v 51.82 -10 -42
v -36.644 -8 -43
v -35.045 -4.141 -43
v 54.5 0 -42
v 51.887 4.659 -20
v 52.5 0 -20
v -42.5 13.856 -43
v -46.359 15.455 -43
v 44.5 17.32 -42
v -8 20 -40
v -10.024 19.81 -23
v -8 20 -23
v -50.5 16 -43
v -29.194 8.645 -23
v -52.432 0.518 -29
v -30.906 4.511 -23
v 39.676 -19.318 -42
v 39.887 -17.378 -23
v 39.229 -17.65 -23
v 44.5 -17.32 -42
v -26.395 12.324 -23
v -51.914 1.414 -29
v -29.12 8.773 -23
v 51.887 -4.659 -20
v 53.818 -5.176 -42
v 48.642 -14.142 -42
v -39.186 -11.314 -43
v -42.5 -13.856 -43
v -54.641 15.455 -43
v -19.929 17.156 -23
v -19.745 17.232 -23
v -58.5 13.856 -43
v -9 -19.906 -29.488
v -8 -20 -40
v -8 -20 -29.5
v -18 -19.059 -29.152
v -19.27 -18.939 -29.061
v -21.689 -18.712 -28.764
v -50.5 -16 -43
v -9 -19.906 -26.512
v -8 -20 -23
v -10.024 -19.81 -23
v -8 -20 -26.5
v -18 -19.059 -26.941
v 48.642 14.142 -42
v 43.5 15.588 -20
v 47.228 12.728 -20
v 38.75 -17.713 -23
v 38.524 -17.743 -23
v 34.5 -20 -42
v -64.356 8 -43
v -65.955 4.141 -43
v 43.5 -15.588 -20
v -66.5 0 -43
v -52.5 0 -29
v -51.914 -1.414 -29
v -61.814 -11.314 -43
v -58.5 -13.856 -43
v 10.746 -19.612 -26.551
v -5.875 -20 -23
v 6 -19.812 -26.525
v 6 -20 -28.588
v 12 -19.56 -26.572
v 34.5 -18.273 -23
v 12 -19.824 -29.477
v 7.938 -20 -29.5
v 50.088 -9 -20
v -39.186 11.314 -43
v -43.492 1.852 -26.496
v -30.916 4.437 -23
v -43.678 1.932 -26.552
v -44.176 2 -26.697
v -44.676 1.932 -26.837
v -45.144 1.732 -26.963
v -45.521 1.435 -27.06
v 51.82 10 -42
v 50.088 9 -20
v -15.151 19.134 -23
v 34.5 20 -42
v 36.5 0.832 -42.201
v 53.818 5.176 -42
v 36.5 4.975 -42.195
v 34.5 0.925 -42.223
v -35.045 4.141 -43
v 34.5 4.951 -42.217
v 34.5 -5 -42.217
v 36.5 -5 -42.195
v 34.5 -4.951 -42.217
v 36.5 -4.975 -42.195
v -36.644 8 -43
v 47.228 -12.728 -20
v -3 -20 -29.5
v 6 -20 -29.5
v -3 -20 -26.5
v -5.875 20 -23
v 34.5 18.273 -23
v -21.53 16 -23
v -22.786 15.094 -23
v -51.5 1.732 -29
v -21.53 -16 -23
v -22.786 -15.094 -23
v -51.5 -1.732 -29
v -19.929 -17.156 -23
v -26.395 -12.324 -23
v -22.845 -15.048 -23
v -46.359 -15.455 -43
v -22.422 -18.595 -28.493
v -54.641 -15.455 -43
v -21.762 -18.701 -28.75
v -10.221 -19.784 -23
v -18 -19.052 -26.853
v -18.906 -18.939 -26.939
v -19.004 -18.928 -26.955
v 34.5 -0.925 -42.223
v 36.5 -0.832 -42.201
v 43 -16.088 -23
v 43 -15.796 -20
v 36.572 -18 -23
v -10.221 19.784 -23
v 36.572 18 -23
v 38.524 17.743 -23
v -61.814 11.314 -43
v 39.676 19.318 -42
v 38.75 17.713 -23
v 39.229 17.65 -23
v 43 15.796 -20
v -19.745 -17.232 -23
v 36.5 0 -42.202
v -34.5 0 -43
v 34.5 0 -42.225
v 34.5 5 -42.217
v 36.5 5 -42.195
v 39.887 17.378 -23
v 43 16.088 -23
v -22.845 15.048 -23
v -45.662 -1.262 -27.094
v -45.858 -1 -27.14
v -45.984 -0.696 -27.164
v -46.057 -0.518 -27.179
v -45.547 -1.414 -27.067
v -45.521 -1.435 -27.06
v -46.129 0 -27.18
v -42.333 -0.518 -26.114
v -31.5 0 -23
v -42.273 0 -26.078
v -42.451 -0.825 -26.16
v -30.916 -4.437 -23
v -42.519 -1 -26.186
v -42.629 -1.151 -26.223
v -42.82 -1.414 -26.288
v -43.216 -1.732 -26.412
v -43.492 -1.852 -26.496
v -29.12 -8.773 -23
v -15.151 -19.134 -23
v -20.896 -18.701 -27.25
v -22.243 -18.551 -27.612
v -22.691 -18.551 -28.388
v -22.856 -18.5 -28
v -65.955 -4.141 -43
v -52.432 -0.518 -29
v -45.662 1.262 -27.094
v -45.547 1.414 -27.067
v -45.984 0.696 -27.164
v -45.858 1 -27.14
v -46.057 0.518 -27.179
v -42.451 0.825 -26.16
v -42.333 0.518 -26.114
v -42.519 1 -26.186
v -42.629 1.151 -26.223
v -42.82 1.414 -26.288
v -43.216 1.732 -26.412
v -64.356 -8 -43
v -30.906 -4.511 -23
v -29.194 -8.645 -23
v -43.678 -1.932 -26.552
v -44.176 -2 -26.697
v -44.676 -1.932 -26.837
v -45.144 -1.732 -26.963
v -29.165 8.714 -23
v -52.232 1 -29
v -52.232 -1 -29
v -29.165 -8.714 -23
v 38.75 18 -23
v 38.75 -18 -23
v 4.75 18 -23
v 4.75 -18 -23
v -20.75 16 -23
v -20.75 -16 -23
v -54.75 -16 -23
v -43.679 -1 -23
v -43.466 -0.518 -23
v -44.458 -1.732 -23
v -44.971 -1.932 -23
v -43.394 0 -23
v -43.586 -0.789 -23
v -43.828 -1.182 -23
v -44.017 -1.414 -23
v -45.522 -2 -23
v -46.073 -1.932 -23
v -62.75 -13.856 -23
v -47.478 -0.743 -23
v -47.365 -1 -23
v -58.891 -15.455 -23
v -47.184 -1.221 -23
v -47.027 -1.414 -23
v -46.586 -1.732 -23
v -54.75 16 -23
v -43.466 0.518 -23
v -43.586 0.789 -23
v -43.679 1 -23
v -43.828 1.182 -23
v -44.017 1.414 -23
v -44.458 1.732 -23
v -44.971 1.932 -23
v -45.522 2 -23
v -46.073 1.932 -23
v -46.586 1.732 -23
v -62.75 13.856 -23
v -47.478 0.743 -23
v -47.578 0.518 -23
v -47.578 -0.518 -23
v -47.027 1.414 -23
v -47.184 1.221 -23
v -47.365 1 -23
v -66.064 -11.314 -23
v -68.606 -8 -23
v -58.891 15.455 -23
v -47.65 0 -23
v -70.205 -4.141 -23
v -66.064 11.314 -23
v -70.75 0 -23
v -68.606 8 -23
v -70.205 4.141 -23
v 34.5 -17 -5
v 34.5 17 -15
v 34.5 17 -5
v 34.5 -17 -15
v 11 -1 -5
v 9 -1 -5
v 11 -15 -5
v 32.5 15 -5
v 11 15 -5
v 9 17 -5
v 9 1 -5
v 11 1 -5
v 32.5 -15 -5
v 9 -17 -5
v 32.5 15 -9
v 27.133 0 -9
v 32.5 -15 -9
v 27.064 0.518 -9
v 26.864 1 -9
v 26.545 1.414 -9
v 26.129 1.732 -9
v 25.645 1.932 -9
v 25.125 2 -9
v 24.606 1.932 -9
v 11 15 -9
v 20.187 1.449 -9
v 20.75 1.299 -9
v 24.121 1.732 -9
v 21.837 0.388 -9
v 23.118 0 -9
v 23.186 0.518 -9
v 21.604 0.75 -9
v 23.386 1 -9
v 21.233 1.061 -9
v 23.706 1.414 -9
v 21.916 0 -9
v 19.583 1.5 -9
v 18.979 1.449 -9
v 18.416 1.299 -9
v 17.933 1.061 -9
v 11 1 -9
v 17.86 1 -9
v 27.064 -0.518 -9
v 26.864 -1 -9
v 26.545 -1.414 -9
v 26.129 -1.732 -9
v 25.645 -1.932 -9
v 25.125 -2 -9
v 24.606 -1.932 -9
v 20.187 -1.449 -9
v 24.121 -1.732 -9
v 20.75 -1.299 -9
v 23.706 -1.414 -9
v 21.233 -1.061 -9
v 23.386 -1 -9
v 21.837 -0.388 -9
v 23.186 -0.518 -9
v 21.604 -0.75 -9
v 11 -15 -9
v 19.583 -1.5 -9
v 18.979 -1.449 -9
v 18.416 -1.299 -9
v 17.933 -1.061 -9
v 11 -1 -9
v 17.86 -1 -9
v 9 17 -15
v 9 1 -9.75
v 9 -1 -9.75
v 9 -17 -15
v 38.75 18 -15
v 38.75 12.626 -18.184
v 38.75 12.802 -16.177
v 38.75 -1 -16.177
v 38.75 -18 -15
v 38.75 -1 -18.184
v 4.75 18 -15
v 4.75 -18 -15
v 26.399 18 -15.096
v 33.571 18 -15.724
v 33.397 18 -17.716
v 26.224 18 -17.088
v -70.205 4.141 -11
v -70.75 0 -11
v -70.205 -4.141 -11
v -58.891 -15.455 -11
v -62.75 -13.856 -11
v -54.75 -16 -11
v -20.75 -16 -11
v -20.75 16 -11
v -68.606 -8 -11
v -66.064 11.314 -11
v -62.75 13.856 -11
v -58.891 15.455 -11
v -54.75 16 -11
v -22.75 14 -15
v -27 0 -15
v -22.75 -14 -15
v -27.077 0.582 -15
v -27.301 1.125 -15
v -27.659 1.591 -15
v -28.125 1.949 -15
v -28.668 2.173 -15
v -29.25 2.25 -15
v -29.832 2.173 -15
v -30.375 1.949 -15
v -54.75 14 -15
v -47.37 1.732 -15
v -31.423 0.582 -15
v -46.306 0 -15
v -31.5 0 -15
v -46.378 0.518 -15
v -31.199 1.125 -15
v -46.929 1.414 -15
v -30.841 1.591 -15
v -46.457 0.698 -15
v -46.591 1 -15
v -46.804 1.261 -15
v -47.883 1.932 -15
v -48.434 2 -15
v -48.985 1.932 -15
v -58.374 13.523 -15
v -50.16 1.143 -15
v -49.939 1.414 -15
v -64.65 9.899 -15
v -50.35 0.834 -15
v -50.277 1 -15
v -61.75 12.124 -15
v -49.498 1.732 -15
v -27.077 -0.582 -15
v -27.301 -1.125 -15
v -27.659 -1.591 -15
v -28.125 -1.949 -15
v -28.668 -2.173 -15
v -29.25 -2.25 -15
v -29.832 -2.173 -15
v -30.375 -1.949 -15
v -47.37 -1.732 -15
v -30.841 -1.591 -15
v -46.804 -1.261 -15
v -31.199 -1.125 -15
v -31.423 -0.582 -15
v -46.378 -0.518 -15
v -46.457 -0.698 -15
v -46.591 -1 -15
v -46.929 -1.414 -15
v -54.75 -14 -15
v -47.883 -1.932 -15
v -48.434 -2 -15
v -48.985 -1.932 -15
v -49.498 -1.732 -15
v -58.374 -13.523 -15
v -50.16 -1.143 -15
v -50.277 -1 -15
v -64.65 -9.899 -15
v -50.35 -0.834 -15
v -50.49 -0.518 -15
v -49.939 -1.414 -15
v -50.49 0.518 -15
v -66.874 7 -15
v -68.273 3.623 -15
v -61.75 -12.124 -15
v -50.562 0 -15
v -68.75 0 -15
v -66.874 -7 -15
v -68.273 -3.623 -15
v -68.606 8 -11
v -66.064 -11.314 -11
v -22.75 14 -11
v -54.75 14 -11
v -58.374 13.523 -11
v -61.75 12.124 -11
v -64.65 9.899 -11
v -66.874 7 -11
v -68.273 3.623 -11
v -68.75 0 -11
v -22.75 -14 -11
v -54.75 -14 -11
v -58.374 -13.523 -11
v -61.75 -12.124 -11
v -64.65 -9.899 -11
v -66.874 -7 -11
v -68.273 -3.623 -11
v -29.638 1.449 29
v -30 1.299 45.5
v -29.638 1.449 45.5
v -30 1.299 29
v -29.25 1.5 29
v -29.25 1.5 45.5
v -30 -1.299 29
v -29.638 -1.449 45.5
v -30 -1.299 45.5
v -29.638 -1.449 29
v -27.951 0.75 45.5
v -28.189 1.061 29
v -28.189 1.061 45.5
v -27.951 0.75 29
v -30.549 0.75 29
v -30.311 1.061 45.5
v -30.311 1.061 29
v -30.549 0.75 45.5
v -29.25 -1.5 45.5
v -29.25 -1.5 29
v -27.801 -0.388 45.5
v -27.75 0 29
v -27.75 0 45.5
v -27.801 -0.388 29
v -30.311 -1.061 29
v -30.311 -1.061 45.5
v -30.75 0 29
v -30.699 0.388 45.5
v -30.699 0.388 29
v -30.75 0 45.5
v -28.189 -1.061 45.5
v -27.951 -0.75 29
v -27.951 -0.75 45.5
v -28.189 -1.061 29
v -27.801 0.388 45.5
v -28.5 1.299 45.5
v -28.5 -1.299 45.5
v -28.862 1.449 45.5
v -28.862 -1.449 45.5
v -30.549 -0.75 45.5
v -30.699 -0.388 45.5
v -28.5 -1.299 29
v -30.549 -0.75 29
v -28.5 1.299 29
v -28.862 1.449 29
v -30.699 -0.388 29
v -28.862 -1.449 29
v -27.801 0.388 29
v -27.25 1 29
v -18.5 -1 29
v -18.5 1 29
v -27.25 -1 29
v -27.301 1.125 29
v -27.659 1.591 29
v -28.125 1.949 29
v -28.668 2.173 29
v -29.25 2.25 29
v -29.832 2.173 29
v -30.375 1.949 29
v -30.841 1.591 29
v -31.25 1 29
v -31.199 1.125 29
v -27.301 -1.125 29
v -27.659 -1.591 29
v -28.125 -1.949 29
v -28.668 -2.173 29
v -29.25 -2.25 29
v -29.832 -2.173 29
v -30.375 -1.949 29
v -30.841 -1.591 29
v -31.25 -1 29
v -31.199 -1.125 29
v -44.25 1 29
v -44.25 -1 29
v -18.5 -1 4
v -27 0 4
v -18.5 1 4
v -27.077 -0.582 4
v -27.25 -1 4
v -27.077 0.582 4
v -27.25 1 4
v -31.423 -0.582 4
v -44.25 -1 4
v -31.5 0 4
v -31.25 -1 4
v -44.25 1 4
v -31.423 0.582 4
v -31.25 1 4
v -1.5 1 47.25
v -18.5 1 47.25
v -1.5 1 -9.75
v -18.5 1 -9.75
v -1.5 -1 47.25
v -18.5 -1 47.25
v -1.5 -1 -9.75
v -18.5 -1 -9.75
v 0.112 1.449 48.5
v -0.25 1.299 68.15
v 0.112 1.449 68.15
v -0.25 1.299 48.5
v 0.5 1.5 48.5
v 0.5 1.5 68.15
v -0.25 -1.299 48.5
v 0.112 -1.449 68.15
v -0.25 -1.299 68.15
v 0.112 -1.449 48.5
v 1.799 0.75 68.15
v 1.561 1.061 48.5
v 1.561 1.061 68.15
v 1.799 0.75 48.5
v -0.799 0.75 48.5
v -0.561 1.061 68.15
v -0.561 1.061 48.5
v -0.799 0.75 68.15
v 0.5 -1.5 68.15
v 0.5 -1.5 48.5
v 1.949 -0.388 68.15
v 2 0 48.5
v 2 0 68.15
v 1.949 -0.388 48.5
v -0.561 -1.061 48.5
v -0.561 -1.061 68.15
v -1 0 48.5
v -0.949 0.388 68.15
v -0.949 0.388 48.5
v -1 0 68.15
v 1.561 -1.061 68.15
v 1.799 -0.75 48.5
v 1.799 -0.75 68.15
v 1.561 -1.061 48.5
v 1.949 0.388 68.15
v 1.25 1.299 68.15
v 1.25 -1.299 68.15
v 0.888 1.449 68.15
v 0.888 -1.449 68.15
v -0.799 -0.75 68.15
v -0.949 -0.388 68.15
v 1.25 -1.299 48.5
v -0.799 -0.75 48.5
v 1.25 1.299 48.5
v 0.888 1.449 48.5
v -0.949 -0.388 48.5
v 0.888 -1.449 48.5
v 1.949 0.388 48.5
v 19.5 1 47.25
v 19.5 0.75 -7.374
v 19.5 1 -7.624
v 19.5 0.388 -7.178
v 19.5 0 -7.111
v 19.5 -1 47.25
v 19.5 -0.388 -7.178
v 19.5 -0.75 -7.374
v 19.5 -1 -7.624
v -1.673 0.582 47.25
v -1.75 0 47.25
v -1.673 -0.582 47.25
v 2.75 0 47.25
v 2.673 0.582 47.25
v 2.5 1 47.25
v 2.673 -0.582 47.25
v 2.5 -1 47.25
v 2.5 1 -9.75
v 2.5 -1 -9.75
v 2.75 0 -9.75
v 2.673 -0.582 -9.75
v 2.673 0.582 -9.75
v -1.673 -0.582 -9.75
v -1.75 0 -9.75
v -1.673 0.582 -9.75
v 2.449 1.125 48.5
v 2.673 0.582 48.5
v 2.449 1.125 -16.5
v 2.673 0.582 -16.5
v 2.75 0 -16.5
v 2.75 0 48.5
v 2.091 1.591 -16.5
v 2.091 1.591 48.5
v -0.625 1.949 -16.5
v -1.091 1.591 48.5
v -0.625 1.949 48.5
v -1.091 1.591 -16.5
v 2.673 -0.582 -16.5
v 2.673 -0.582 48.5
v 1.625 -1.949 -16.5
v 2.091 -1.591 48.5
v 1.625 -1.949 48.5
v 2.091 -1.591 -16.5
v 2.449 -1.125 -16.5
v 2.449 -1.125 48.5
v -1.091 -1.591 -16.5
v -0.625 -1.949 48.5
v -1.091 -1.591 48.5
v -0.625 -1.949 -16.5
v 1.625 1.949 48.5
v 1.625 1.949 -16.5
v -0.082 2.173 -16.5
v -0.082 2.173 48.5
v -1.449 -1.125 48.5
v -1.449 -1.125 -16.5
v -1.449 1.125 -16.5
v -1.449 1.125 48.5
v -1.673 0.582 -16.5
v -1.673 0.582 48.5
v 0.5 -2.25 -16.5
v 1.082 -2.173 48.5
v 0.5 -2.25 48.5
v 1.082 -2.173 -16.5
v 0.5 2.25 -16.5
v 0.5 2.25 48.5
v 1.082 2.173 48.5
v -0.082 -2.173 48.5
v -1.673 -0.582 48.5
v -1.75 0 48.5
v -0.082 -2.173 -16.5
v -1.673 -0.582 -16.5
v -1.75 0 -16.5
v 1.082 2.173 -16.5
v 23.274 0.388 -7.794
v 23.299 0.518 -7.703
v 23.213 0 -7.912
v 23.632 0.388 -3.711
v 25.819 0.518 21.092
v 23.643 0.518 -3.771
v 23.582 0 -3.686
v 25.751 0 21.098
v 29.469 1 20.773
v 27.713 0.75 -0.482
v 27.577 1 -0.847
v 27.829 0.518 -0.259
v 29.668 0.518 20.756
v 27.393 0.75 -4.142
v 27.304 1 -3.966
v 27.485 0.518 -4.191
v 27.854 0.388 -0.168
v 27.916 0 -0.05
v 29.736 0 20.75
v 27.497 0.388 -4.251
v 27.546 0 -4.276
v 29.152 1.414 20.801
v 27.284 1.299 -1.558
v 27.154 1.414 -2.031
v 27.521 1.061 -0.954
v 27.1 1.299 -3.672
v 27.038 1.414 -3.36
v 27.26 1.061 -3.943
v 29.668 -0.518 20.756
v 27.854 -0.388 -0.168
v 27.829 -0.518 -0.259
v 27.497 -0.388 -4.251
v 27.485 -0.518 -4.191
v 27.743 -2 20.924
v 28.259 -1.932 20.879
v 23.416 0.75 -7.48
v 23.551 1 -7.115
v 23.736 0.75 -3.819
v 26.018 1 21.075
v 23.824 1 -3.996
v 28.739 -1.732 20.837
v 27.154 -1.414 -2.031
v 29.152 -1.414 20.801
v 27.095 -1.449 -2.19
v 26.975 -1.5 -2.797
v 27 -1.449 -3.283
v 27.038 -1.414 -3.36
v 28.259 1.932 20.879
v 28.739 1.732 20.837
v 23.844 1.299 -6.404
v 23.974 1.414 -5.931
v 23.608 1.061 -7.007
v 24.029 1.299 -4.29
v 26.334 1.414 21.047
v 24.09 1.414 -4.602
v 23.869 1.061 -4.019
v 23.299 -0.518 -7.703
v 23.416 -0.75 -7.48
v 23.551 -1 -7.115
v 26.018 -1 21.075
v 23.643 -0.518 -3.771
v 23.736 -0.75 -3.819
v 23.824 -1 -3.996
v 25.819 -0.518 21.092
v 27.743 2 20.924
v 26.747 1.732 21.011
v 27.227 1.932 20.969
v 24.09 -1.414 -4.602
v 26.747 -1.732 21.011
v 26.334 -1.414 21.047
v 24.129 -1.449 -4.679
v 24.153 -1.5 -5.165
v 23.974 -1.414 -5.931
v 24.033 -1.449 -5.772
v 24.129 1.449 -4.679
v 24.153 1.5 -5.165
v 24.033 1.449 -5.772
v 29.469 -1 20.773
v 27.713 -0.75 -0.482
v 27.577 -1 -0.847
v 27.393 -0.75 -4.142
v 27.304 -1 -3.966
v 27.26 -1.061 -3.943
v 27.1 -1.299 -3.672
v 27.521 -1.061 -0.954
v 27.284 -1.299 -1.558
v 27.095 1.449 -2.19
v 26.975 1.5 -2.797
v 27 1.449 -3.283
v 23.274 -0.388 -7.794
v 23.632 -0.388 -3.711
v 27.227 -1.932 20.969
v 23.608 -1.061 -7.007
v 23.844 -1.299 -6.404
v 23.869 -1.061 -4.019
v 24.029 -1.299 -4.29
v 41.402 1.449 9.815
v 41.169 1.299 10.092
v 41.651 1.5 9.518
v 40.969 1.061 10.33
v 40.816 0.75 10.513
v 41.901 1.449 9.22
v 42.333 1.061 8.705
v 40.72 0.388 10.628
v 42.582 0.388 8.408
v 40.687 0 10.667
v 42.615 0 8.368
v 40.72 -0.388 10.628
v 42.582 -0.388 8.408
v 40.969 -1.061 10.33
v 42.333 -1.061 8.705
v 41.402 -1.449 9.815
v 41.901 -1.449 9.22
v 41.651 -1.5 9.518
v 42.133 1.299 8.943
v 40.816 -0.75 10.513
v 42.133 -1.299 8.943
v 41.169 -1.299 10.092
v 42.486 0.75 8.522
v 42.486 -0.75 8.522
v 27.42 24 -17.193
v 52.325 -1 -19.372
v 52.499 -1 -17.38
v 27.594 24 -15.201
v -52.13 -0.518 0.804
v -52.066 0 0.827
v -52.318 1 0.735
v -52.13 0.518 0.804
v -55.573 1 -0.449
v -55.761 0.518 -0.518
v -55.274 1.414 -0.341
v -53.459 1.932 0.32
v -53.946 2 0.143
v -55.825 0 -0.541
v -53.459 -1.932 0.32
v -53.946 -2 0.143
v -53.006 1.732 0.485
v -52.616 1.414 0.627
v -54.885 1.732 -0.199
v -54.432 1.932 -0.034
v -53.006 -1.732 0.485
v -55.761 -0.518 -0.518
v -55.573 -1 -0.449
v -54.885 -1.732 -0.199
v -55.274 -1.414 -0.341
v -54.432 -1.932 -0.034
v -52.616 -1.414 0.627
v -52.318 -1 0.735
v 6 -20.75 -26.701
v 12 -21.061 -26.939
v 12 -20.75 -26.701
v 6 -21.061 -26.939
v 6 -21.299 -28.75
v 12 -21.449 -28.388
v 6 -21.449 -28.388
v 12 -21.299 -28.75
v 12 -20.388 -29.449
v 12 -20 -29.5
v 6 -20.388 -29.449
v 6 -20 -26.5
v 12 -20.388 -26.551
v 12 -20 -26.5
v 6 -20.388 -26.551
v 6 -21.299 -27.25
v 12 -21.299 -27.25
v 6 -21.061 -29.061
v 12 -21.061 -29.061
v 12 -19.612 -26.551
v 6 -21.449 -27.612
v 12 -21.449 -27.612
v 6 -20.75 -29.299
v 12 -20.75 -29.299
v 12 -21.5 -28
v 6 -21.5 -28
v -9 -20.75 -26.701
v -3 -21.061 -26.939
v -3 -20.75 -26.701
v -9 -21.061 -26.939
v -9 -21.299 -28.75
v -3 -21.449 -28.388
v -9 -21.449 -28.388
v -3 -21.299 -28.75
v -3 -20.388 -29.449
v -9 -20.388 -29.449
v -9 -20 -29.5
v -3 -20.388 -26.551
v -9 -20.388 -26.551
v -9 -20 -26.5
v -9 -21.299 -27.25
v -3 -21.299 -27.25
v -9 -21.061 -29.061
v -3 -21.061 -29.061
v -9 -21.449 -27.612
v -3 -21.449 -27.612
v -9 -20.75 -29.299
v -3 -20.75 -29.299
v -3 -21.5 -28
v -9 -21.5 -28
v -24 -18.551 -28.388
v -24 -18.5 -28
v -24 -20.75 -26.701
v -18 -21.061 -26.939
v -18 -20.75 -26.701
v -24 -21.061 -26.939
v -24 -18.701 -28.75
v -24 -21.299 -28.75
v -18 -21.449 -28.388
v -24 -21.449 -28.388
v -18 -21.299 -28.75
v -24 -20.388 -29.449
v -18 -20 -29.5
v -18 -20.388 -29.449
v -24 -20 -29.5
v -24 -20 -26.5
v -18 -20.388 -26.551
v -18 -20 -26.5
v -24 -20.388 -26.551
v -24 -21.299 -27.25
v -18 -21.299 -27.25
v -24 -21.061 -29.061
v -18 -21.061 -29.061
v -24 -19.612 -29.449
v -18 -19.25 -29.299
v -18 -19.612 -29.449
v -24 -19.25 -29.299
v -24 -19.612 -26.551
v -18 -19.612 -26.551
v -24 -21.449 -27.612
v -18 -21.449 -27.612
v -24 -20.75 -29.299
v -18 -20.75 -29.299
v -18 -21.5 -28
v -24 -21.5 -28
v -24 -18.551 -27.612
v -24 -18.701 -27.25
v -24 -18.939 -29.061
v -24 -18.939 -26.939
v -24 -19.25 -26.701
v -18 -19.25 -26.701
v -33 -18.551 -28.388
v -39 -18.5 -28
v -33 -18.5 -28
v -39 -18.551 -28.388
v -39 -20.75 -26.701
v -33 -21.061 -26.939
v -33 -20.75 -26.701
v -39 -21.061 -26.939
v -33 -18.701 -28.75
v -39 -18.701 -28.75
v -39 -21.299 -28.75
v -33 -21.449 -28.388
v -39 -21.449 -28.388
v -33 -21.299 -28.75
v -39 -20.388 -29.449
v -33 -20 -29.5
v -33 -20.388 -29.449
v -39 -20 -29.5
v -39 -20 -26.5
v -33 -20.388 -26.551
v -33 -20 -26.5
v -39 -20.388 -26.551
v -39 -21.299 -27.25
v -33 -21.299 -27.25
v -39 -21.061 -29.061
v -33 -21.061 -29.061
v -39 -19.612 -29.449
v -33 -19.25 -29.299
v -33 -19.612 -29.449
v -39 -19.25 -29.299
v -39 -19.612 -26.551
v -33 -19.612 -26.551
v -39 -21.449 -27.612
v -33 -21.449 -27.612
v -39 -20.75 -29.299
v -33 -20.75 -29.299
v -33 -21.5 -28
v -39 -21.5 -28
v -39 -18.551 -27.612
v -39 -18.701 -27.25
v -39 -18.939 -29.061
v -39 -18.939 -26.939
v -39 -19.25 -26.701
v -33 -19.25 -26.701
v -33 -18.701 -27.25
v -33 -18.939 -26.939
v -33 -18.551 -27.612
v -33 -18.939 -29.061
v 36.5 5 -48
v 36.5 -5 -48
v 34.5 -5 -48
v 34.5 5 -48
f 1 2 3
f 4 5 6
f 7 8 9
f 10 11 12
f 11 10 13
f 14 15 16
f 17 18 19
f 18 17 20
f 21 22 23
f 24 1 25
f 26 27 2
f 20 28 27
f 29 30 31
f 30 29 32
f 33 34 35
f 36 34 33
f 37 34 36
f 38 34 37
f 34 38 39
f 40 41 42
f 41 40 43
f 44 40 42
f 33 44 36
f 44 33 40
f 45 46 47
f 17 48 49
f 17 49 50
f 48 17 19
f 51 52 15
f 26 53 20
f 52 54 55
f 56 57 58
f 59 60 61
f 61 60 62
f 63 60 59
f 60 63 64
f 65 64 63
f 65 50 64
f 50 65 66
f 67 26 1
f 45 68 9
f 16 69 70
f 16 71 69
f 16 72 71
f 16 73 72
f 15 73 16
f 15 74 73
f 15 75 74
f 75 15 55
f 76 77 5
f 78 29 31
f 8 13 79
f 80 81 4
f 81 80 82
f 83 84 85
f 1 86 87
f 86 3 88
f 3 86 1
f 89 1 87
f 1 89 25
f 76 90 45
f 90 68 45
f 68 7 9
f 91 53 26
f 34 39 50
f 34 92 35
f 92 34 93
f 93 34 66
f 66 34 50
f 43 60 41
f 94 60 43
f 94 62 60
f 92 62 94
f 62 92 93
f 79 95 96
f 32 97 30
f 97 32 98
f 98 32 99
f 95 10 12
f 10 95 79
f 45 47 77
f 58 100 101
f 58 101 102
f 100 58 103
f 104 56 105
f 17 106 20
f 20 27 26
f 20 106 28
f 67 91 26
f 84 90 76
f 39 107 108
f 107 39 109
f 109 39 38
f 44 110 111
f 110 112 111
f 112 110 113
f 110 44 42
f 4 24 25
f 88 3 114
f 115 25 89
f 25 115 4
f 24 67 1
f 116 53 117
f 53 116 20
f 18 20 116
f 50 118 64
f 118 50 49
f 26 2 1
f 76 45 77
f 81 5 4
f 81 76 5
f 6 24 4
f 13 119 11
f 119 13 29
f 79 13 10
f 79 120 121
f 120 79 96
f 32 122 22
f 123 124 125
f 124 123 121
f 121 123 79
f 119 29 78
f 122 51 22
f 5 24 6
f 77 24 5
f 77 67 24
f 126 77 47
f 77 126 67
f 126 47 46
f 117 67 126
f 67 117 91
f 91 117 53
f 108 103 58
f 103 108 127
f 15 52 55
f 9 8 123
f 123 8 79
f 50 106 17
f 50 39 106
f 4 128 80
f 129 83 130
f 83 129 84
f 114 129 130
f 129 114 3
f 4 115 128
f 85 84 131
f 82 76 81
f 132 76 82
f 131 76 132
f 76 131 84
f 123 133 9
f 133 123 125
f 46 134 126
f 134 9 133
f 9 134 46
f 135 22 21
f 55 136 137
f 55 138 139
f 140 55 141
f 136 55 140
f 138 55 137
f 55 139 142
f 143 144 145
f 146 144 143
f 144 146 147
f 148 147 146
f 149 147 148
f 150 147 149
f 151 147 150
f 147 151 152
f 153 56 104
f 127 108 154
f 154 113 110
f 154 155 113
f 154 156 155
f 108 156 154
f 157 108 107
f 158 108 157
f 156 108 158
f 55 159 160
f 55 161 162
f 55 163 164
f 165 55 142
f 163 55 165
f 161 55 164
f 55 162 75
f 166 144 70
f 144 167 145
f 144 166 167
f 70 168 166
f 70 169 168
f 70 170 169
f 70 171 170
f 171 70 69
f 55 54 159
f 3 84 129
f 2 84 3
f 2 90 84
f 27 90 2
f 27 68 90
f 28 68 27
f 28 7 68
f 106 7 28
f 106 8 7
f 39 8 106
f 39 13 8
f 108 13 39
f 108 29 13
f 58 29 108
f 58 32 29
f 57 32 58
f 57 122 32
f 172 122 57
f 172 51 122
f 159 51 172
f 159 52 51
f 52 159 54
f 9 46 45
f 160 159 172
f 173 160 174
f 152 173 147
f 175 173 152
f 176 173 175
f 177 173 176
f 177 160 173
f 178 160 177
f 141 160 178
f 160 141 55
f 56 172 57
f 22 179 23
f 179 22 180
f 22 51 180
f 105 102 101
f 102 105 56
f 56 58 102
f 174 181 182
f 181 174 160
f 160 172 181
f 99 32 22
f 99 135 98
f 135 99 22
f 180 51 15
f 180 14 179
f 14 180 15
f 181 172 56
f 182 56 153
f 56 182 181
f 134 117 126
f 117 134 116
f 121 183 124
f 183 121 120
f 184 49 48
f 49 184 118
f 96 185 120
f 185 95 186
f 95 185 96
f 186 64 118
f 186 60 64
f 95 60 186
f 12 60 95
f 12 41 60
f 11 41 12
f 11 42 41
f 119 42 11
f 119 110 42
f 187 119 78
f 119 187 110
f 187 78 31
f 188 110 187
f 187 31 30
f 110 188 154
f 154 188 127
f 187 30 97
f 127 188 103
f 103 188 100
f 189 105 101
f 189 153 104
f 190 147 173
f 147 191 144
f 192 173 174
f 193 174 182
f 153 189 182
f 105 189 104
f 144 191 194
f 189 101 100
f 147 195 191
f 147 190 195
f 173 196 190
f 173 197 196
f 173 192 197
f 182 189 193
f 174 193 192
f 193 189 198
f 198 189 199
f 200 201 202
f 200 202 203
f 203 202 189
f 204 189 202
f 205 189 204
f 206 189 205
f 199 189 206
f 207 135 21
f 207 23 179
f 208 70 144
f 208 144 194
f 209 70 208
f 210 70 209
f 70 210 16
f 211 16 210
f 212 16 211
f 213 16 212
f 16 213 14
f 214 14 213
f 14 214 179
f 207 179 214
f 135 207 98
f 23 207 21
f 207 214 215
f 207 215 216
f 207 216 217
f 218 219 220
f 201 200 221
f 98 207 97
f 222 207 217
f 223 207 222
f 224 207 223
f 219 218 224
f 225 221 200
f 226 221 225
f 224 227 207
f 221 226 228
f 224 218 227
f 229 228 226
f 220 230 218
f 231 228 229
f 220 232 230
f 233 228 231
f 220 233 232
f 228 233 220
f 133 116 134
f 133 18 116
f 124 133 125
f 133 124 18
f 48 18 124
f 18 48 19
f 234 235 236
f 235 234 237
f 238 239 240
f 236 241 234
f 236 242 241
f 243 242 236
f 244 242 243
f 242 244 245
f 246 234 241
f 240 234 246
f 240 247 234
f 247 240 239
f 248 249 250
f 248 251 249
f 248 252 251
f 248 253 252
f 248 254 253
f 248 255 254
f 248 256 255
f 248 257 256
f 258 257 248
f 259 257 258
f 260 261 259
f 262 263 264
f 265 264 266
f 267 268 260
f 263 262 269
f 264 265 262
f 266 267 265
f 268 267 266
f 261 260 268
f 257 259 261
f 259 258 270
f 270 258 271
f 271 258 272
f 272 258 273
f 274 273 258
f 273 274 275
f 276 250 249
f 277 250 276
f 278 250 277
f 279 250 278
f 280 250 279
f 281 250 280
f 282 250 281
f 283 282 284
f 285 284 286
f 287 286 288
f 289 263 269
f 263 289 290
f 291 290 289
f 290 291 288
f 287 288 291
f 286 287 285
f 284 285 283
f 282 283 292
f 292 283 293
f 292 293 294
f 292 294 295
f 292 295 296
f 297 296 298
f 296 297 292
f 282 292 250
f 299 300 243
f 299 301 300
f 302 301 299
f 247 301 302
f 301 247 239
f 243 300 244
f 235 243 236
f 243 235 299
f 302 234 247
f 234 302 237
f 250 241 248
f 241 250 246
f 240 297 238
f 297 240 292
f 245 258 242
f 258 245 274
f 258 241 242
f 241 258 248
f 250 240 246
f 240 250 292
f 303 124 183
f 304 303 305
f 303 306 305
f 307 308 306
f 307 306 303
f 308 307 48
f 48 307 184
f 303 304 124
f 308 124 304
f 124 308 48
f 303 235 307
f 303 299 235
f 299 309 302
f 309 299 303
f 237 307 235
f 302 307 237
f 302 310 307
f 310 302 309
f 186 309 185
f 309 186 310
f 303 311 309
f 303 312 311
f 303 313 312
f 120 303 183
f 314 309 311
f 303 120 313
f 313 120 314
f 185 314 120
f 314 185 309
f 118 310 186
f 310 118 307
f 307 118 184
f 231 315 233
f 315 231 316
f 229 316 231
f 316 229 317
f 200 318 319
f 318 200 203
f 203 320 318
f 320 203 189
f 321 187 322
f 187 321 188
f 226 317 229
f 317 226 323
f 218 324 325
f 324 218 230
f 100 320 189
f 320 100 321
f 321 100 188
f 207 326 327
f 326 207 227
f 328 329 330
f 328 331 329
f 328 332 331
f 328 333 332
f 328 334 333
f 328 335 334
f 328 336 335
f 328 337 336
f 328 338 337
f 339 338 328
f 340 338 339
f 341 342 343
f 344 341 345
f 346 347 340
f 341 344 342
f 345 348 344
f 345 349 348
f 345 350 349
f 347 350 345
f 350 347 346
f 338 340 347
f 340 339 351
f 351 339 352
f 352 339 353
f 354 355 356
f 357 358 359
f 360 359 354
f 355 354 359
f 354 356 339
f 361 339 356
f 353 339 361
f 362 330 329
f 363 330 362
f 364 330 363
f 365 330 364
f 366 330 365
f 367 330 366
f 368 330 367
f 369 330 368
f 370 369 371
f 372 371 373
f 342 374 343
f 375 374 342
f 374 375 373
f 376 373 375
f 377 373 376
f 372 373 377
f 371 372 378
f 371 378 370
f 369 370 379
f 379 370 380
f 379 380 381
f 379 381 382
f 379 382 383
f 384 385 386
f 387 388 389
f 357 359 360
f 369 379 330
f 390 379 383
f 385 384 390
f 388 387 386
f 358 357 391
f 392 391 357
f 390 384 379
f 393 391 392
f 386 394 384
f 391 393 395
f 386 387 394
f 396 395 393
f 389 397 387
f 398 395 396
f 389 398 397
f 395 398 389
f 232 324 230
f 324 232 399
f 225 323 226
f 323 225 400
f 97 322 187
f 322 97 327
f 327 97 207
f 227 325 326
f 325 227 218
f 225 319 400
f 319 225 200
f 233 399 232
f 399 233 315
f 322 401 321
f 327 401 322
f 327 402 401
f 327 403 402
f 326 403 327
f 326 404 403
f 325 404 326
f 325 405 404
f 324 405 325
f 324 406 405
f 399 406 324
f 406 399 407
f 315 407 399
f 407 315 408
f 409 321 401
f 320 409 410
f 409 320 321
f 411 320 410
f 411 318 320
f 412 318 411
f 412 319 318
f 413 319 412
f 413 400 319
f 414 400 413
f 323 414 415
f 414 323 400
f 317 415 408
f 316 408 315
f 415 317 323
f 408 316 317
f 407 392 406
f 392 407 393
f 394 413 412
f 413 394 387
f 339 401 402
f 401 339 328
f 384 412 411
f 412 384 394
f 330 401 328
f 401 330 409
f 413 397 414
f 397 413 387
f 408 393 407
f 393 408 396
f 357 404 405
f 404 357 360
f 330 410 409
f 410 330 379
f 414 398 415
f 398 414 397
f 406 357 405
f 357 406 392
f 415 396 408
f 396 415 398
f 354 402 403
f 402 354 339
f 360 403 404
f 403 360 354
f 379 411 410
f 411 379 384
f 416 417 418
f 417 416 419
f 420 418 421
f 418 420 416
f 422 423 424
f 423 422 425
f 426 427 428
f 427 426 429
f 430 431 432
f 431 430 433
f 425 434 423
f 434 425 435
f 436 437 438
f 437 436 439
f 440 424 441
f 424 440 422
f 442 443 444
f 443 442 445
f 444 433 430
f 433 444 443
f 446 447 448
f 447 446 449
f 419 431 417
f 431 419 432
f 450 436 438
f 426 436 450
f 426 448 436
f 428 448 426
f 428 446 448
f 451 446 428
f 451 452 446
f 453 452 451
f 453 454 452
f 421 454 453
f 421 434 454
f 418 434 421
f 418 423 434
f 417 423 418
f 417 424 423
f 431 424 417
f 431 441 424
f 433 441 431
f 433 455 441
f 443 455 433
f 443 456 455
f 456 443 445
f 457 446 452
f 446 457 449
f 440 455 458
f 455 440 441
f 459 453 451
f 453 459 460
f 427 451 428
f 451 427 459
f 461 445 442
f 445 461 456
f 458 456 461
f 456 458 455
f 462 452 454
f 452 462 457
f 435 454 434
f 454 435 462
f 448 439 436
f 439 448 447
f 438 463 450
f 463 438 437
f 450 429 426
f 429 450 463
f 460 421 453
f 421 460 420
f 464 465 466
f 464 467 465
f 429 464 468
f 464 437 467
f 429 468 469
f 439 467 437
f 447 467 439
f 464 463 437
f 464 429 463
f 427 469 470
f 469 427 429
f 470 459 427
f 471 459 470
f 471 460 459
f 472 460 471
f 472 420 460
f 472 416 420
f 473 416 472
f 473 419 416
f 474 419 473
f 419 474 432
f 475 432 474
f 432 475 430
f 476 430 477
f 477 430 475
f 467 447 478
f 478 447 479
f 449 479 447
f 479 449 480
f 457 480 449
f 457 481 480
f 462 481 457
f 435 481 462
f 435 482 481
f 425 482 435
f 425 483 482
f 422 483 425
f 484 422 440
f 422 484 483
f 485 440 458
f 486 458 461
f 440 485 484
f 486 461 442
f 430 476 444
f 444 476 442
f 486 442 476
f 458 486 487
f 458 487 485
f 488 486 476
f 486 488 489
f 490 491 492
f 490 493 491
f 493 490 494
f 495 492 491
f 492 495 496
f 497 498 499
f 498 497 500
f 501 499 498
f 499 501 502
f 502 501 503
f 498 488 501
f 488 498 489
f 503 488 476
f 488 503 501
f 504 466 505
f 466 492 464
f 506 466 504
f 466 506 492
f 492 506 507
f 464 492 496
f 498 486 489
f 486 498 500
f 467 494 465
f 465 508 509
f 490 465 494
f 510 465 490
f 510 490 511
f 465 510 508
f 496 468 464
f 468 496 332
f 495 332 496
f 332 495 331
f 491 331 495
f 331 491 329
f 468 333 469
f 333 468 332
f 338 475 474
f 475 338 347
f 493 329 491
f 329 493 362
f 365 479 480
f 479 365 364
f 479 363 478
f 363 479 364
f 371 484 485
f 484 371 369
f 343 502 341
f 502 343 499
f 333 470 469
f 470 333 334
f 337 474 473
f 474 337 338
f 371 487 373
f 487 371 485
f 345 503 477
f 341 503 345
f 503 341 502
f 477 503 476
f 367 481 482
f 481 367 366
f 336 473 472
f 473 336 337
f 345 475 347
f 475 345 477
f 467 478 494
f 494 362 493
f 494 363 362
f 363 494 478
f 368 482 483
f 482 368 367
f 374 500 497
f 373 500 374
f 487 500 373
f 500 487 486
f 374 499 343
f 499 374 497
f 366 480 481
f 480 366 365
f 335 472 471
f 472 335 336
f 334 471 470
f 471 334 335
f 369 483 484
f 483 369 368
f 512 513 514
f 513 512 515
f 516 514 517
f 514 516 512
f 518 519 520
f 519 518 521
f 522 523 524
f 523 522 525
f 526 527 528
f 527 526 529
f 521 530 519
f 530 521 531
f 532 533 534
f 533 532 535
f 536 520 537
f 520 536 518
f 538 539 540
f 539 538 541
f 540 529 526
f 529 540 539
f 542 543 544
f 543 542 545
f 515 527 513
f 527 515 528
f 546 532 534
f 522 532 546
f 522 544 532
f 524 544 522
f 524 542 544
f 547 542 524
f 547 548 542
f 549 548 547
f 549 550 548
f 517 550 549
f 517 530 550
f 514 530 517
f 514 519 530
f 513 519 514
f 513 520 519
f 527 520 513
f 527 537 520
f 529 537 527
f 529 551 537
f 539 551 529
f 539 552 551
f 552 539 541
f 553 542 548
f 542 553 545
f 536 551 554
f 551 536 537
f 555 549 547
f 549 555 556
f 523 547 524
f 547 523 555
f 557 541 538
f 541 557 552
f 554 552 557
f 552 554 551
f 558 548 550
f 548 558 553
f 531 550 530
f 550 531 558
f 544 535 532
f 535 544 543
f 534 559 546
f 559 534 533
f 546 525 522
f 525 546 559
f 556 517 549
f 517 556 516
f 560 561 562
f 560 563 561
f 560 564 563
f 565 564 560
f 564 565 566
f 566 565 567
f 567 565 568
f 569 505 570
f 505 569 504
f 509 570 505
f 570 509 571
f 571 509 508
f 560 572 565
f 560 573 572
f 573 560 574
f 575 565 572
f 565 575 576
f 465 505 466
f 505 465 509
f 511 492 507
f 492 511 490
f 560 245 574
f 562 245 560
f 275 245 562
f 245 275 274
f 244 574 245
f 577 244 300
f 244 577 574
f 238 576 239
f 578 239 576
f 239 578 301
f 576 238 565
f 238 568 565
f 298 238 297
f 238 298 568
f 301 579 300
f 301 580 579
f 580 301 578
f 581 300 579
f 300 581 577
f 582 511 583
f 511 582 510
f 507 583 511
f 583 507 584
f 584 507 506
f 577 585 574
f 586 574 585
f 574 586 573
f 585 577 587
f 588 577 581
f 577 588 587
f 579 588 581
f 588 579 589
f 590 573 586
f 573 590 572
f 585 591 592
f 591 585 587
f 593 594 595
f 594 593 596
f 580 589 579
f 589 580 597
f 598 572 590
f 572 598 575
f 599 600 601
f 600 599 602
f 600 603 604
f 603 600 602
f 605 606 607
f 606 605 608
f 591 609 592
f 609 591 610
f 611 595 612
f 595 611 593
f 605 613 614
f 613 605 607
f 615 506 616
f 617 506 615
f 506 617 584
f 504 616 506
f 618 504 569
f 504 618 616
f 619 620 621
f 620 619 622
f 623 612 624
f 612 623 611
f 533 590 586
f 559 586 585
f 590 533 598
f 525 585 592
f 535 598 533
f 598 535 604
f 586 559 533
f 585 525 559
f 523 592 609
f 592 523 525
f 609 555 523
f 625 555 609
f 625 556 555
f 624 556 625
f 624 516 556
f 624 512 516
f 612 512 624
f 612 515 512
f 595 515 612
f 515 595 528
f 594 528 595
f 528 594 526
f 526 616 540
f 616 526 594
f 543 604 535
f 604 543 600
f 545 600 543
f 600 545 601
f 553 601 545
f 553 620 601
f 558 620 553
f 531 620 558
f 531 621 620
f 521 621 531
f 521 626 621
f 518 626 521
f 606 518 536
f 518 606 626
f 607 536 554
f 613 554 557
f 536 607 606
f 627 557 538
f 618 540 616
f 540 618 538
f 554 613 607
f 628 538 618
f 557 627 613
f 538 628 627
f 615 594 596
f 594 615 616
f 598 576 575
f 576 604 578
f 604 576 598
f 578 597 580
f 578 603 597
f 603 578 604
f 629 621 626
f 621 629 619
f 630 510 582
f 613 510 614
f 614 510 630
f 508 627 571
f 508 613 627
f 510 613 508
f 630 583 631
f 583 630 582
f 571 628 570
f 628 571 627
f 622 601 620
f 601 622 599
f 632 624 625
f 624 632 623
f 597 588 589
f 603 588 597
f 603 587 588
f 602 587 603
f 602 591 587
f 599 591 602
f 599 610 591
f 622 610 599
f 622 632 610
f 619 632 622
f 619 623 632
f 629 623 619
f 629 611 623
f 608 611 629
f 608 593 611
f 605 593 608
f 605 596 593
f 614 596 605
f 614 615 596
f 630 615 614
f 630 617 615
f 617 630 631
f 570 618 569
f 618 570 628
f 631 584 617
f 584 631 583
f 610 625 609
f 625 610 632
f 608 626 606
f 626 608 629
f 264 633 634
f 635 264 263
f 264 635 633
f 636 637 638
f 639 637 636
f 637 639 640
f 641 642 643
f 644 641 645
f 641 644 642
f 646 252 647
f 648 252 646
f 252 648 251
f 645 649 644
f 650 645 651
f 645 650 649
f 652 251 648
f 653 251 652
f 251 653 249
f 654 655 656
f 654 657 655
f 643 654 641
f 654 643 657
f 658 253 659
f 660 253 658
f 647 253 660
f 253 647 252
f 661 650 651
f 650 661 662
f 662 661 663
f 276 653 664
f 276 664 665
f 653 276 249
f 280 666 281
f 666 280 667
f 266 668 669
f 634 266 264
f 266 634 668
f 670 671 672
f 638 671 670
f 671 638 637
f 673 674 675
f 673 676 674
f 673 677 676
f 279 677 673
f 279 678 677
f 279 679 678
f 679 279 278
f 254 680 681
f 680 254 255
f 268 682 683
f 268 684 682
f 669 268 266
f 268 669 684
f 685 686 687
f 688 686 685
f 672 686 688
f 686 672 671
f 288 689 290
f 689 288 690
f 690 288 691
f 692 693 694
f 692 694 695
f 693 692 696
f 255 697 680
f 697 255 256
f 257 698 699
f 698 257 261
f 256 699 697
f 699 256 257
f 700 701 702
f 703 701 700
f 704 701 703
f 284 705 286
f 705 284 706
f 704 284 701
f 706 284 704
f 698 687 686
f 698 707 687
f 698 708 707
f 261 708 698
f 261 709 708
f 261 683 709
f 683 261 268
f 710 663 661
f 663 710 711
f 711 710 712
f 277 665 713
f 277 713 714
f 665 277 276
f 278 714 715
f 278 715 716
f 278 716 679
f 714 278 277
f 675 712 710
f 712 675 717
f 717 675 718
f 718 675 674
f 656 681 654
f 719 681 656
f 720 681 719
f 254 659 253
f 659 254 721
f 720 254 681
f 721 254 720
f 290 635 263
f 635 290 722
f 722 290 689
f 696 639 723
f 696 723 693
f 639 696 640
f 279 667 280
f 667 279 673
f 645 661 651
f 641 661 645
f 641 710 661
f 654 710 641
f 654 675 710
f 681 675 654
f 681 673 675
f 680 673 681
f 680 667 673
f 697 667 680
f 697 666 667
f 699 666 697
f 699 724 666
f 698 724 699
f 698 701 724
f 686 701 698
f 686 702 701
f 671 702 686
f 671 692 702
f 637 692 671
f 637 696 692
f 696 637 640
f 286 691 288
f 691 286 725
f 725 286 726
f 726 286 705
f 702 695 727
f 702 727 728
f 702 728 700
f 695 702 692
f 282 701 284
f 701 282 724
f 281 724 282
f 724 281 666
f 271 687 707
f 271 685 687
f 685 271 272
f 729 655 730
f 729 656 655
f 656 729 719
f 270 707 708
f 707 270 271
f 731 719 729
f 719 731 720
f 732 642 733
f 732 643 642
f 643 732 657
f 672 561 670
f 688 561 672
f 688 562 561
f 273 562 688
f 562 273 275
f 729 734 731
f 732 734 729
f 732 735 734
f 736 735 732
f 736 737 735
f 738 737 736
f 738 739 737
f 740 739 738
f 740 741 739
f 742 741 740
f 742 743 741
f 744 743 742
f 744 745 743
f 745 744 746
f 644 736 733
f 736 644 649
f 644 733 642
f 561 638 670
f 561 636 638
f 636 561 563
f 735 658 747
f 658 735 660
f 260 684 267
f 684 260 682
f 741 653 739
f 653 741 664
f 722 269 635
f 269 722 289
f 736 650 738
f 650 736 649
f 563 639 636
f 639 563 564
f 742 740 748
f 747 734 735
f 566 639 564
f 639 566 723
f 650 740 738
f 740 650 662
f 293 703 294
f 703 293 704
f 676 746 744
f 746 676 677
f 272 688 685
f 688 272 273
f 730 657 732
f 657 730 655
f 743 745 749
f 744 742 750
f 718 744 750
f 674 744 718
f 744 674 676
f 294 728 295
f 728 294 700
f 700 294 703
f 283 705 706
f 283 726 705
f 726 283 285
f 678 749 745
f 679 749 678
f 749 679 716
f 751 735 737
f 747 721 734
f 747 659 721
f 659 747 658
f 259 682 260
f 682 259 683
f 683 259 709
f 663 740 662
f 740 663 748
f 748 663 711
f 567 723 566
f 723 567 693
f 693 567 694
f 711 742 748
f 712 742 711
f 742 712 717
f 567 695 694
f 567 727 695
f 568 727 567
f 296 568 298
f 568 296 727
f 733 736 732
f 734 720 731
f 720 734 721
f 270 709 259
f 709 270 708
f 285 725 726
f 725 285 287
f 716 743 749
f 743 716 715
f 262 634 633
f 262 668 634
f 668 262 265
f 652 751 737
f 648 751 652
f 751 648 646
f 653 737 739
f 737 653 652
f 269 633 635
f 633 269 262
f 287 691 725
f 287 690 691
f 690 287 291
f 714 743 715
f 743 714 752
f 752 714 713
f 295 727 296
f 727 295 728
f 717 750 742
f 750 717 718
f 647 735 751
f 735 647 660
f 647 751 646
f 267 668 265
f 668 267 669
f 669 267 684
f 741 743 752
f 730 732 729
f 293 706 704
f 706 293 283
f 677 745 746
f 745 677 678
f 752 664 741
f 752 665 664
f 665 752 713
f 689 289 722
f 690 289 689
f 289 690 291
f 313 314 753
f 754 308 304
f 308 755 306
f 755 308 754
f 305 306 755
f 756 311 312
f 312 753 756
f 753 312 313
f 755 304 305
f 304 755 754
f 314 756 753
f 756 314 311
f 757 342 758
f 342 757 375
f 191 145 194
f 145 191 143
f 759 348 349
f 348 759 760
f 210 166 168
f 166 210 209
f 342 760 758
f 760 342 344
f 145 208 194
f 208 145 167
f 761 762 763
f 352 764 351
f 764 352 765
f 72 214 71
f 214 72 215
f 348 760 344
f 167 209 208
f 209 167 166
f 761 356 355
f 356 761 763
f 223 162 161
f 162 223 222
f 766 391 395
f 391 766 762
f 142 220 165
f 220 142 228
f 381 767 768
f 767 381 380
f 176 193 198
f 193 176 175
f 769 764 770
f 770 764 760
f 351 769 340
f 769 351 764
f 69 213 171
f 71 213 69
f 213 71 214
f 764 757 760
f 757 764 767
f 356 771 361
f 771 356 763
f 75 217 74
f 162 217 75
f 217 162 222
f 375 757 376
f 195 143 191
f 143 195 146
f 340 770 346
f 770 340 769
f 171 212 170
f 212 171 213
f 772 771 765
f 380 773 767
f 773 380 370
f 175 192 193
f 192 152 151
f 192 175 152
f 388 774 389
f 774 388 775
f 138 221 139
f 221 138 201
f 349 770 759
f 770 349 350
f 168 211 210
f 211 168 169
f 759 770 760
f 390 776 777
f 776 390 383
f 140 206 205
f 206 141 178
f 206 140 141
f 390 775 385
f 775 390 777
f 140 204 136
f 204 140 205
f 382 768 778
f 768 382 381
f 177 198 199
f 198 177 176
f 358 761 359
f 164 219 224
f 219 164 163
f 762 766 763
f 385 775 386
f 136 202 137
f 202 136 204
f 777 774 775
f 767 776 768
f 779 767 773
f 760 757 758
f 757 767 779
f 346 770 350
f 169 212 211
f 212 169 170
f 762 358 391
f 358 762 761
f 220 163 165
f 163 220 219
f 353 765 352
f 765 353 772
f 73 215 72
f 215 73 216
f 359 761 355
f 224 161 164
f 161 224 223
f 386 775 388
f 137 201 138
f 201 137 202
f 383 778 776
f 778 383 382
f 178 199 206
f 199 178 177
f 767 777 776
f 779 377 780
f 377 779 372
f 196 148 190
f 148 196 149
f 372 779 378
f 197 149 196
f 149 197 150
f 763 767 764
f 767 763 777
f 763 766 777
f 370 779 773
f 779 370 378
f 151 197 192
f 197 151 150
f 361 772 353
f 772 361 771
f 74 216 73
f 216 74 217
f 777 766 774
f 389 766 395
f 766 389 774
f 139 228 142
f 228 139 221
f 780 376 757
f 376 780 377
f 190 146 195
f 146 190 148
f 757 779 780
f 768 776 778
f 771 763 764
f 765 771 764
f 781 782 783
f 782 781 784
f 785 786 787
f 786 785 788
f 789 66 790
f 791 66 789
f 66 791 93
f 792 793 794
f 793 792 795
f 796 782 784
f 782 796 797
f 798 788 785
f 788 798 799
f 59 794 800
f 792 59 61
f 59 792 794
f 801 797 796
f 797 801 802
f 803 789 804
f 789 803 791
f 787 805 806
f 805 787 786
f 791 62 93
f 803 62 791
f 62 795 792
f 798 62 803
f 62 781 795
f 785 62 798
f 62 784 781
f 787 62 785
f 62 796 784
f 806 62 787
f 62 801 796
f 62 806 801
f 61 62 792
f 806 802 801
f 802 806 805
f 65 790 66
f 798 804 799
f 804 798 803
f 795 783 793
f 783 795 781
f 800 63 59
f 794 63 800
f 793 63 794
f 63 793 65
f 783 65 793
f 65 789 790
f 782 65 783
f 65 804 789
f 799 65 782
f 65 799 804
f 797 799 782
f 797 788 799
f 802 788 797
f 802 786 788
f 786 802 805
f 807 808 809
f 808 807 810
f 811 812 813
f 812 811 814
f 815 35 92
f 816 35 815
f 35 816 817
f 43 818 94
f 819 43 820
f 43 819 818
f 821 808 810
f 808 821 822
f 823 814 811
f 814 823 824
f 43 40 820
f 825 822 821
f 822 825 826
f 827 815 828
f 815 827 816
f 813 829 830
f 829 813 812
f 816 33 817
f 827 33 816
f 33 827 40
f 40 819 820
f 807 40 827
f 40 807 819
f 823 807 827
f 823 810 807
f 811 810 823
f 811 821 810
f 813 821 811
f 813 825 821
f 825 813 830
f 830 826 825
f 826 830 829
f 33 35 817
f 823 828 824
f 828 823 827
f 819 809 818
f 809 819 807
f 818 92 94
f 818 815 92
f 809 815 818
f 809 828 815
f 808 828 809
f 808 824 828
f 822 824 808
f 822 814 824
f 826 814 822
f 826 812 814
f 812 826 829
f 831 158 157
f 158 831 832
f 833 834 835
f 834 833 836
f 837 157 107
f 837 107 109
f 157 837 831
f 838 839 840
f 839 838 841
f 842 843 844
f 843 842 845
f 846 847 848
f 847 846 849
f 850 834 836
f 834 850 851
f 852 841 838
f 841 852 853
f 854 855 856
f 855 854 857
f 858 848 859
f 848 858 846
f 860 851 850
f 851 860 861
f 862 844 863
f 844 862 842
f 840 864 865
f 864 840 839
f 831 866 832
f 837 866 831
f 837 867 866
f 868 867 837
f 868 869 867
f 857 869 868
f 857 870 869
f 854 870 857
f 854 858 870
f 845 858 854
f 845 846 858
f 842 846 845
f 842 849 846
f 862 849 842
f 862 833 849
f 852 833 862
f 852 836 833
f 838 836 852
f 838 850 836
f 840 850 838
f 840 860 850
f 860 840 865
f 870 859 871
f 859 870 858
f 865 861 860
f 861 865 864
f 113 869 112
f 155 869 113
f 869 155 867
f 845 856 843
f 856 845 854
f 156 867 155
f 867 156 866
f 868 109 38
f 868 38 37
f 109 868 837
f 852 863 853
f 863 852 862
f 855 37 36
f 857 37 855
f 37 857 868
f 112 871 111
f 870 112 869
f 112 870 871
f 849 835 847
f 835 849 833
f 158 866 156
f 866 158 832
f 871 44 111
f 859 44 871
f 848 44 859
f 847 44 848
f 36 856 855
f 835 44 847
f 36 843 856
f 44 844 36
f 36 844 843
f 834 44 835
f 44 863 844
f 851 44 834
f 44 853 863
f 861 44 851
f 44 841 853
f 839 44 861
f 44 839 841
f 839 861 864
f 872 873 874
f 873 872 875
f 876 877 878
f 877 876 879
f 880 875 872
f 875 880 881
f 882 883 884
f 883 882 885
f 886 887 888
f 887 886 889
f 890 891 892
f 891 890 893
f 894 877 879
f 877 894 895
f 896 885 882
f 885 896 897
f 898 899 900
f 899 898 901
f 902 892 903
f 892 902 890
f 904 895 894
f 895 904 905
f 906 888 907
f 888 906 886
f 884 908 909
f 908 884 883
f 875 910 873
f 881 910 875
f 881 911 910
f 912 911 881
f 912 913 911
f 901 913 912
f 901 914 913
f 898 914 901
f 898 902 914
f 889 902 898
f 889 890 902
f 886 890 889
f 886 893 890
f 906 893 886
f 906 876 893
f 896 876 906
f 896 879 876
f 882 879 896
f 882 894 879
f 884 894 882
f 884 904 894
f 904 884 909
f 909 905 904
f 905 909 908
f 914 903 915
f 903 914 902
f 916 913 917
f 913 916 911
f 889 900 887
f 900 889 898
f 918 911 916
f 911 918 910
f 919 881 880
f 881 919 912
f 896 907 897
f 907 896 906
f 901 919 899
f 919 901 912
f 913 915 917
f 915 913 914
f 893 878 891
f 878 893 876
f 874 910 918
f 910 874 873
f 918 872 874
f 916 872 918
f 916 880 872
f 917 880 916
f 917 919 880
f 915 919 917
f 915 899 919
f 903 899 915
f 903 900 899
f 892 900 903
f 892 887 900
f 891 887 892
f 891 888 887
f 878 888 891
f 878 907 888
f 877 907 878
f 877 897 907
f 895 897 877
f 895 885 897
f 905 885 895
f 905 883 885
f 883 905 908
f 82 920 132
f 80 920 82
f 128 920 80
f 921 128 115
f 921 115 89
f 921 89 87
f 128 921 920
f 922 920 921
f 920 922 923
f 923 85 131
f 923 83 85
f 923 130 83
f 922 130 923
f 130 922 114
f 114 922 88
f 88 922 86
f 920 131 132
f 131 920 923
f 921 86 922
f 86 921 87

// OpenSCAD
// OpenSCAD Galeón Español para Impresión 3D FDM
// Dimensiones Objetivo: 100x50x90mm
// Centrado en (0,0,0)
// Mínimo grosor de pared: 2mm

$fn = 24;

// --- Parámetros Globales ---
ship_length = 85;   // Longitud del casco principal
ship_width = 40;    // Ancho del casco principal
deck_level = 8;     // Nivel de la cubierta principal en Z
min_wall = 2;

// --- Módulo Principal ---
// Centra el galeón completo en el origen
// Centro calculado X: -8, Z: 31
translate([-8, 0, -31]) {
    galeon();
}

// --- Ensamblaje del Galeón ---
module galeon() {
    union() {
        casco();
        superestructura();
        mastiles_y_velas();
        detalles();
    }
}

// --- Casco ---
module casco() {
    difference() {
        // Forma base del casco usando la función hull() para suavizar
        hull() {
            // Popa (Stern) - Ancha y alta
            translate([ship_length * 0.5, 0, 0])
                cylinder(h = 22, d1 = ship_width, d2 = ship_width * 0.9, center = true);

            // Centro
            translate([0, 0, 0])
                cylinder(h = 18, d = ship_width, center = true);
            
            // Proa (Bow) - Estrecha y elevada
            translate([-ship_length * 0.5, 0, -5])
                cylinder(h = 14, d1 = ship_width * 0.8, d2 = ship_width * 0.1, center = true);
        }
        // Corte superior para crear una cubierta plana y sólida
        translate([0, 0, deck_level + 25])
            cube([ship_length * 1.2, ship_width * 1.2, 50], center = true);
    }
}

// --- Superestructura (Castillos de Proa y Popa) ---
module superestructura() {
    // Castillo de Popa (Sterncastle) - Múltiples niveles en la parte trasera
    translate([ship_length * 0.35, 0, deck_level + 4]) {
        // Nivel 1
        cube([ship_length * 0.4, ship_width * 0.9, 8], center = true);
        // Nivel 2
        translate([0, 0, 6])
            cube([ship_length * 0.3, ship_width * 0.85, 8], center = true);
        // Barandilla Popa
        difference() {
            translate([0, 0, 12])
                cube([ship_length * 0.3, ship_width * 0.85, 4], center = true);
            translate([0, 0, 12])
                cube([ship_length * 0.3 - min_wall*2, ship_width * 0.85 - min_wall*2, 5], center = true);
        }
    }
    
    // Castillo de Proa (Forecastle) - Cubierta elevada en la parte delantera
    translate([-ship_length * 0.35, 0, deck_level + 4]) {
        deck_l = ship_length * 0.4;
        deck_w = ship_width * 0.8;
        hull() {
             cube([deck_l, deck_w, 8], center = true);
             translate([-deck_l/2, 0, 0]) cylinder(h=8, d=deck_w, center=true);
        }
        // Barandilla Proa
        difference() {
             hull() {
                translate([0, 0, 6]) cube([deck_l, deck_w, 4], center = true);
                translate([-deck_l/2, 0, 6]) cylinder(h=4, d=deck_w, center=true);
             }
             hull() {
                translate([0, 0, 6]) cube([deck_l - min_wall*2, deck_w-min_wall*2, 5], center=true);
                translate([-deck_l/2, 0, 6]) cylinder(h=5, d=deck_w-min_wall*2, center=true);
             }
        }
    }
}

// --- Mástiles, Vergas y Velas ---
module mastiles_y_velas() {
    // Bauprés (Bowsprit) - Palo que sobresale de la proa
    translate([-ship_length * 0.45, 0, 10])
        rotate([0, -20, 0])
            cylinder(h = 45, d = 4, center = true);

    // Mástil de Trinquete (Foremast) - Delantero
    translate([-ship_length * 0.25, 0, 35])
        mastil_con_velas(altura=50, vela_ancho=30, vela_alto=25);

    // Mástil Mayor (Mainmast) - Central y más alto
    translate([ship_length * 0.1, 0, 47])
        mastil_con_velas(altura=65, vela_ancho=38, vela_alto=30, num_velas=2);
        
    // Mástil de Mesana (Mizzenmast) - Trasero
    translate([ship_length * 0.4, 0, 32])
        rotate([0, 5, 0]) // Ligeramente inclinado hacia popa
            mastil_con_vela_latina(altura=40, vela_largo=30, vela_alto=25);
}

// --- Módulo para Mástil con Velas Cuadradas ---
module mastil_con_velas(altura, vela_ancho, vela_alto, num_velas=1) {
    // Mástil
    cylinder(h = altura, d = 4.5, center = true);
    
    // Vergas (palos horizontales) y Velas
    for (i = [1:num_velas]) {
        translate([0, 0, altura/4 - (i-1)*(vela_alto*0.9)]) {
            // Verga
            translate([0, 0, vela_alto/2])
                rotate([0, 0, 90])
                    cylinder(h = vela_ancho * 1.1, d = 3, center = true);
            // Vela
            cube([vela_ancho, min_wall, vela_alto], center = true);
        }
    }
}

// --- Módulo para Mástil con Vela Latina (Triangular) ---
module mastil_con_vela_latina(altura, vela_largo, vela_alto) {
    // Mástil
    cylinder(h = altura, d = 4, center = true);
    
    // Verga inclinada (Entena)
    translate([0,0,-5])
    rotate([0, 0, 90])
    rotate([45, 0, 0])
        cylinder(h = vela_largo * 1.4, d = 3, center = true);
        
    // Vela Latina
    translate([-2, -min_wall/2, -altura/2 + 2])
        linear_extrude(height = min_wall)
            polygon(points=[[0,0], [vela_largo, 0], [5, vela_alto]]);
}

// --- Detalles Adicionales ---
module detalles() {
    // Timón (Rudder)
    translate([ship_length/2 + 1, 0, -8])
        cube([min_wall, 10, 18], center = true);
    
    // Cañones (Cannons)
    for (y_pos = [-1, 1]) { // Babor y Estribor (izquierda y derecha)
        mirror([0, y_pos, 0]) {
            for (i = [0:3]) {
                translate([ship_length * 0.2 - i * 15, ship_width/2, 3])
                    rotate([0,90,0])
                        cylinder(h = 6, d = 3, center = true);
            }
        }
    }
}
